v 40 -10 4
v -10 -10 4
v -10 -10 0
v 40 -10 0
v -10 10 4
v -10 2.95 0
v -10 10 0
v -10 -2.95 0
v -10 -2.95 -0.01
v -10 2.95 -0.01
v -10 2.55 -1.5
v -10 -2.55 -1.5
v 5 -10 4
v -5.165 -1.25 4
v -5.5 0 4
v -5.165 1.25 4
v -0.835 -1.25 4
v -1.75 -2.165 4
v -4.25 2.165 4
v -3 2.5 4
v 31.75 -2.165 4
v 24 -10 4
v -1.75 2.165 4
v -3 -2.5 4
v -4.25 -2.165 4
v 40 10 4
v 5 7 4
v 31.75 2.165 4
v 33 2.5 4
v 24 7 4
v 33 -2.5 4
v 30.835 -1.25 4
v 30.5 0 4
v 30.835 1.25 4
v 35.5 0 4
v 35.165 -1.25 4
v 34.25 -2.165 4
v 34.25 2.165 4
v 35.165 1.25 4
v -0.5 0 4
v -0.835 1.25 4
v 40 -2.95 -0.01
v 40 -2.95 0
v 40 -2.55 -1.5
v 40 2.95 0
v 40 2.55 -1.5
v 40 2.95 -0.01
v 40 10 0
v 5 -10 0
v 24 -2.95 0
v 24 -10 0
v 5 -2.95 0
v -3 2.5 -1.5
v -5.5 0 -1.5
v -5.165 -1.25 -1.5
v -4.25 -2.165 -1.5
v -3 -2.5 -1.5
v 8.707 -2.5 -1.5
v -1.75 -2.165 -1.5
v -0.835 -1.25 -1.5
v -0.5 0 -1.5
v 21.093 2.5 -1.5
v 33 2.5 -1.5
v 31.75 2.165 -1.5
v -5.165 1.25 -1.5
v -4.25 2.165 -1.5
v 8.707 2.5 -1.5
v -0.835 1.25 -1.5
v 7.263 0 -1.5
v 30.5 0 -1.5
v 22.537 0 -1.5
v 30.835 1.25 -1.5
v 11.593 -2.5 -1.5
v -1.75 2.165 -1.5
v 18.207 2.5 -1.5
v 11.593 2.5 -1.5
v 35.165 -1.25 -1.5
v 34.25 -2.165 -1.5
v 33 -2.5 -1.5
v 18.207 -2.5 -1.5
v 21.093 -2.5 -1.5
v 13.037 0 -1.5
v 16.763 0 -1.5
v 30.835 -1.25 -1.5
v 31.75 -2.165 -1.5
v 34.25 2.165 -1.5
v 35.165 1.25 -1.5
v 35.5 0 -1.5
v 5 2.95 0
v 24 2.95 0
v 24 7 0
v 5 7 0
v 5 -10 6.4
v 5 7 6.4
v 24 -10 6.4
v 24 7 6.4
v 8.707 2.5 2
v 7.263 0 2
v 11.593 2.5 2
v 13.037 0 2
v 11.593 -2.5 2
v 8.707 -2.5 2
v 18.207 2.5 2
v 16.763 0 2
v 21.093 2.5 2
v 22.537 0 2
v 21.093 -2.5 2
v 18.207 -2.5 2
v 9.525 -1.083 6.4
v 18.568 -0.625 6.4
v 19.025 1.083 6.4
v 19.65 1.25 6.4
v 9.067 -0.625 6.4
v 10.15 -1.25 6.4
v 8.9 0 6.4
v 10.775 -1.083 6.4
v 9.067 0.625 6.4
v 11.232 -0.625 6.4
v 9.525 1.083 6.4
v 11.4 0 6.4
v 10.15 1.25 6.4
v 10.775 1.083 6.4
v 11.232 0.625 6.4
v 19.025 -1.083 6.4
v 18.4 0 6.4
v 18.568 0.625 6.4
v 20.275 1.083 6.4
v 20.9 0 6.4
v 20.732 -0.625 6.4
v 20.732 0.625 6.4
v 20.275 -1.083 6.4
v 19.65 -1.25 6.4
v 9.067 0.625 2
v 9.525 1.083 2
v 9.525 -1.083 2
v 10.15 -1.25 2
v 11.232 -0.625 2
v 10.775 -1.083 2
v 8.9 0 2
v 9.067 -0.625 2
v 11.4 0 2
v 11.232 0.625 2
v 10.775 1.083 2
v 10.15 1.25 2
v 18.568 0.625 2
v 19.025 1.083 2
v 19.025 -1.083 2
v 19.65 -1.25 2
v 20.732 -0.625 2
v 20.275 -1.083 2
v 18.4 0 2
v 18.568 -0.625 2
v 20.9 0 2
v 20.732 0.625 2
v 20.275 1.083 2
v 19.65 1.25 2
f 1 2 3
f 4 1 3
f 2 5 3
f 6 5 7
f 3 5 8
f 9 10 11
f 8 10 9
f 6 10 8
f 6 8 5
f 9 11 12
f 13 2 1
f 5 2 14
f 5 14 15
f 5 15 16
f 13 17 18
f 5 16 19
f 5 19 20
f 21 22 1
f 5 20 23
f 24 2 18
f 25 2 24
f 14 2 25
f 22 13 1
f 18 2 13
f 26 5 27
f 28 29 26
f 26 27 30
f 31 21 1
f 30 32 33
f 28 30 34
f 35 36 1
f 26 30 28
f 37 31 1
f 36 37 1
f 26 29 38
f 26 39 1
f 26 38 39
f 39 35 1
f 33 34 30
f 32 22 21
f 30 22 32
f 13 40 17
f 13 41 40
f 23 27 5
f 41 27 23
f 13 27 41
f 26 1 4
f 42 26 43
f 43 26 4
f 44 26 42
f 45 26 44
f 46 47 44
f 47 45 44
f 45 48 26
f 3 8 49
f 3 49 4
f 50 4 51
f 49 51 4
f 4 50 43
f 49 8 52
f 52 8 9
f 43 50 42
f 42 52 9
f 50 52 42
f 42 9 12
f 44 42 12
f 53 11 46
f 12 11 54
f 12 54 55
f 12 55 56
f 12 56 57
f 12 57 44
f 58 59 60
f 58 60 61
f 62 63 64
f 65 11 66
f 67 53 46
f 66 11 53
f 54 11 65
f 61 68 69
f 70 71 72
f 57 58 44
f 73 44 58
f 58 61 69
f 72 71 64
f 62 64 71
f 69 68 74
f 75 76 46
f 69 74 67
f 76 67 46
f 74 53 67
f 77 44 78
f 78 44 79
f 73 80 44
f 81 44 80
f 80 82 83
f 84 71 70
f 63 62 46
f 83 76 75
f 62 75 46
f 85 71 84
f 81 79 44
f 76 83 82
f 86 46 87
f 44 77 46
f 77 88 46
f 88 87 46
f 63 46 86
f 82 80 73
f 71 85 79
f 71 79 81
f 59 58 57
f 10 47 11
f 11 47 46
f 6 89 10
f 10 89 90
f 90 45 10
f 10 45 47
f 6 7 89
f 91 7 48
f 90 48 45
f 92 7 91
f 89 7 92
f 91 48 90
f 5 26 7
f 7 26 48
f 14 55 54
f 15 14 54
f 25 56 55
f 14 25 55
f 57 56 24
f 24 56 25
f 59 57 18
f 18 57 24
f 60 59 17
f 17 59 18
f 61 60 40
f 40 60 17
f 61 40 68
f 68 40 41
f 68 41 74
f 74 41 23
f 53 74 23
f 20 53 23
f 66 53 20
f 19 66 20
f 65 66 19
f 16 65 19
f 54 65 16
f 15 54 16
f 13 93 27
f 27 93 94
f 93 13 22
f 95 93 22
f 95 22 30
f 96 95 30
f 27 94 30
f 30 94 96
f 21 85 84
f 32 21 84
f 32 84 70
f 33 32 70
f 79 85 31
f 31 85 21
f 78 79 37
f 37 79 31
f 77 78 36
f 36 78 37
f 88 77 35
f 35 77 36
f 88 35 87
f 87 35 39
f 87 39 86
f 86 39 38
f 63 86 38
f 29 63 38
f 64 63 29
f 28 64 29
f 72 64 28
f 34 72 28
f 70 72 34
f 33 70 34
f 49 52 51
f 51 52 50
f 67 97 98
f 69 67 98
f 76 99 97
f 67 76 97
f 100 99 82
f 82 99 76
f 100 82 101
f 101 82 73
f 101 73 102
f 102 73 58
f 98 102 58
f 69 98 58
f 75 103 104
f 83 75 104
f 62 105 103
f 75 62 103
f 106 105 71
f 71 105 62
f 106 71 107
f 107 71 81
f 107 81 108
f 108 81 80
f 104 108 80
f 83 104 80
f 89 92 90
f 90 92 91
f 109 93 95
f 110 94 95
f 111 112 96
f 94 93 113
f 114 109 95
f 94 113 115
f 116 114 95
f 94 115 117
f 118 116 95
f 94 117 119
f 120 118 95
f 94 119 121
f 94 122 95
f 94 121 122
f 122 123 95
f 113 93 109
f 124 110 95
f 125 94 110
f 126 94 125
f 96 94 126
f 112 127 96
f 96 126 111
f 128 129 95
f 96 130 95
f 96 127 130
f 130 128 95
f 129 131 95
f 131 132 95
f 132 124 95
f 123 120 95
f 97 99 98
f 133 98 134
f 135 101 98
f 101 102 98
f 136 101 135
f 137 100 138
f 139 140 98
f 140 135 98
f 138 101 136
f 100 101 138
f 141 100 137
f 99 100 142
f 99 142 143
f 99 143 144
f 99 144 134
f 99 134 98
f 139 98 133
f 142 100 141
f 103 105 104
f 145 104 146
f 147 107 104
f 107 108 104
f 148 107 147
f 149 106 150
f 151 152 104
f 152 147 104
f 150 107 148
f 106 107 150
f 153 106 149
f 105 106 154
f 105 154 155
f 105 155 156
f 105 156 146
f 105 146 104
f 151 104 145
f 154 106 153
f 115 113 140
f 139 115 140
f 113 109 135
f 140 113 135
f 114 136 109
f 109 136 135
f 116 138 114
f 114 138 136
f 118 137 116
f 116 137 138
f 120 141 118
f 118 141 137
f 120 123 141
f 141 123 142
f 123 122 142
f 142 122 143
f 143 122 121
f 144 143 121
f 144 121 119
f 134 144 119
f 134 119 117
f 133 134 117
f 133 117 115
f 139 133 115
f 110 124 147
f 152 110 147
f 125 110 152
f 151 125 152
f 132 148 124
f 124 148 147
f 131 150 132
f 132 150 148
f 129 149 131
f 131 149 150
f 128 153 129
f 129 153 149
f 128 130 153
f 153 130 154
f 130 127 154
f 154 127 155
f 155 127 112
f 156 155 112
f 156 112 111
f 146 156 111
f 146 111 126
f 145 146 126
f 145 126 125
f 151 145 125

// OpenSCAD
// file: ss_3gl13p.scad
//SS-3GL13P microswitch

//the real lever has a bump that isn't depicted here, but the tip of the lever here is where the tip of the bump is on the real switch when the operating point is reached

module ss_3gl13p(){
		difference(){
			union(){
				color("black")
				translate([0,-3.3,0]) cube([19.8,7.7+3.3,6.4]);
				color("silver")
				translate([5.15+15.8,10.7,0]) rotate([0,0,-170]) cube([20,1,6.4]);
			}
			translate([5.15,0,0])
			cylinder(r=2.3/2, h=100, center=true);
			translate([5.15+9.5,0,0])
			cylinder(r=2.3/2, h=100, center=true);
		}
	}

}
// main file
use<ss_3gl13p.scad>



module nut(w, h){
	translate([0,0,h/2])
	for (i=[1:3])
		rotate([0,0,60*i])
		cube([w, w/sqrt(3), h], center=true);

}



module	yendstop(color="blue", switch=0){
$fn=12;

switch_offset_side=5;
switch_offset_in=0;
switch_offset_height=15.8-15.8;

thickness=4;
extrusion_pad_width=50;
extrusion_pad_ridge_depth=1.5;
extrusion_pad_ridge_width=5.9;

strut_thickness=10;
strut_width=5.5;

switch_backing_width=19;
switch_backing_height=9;

switch_hole_dia=2.5;

	if(switch){
		translate([switch_offset_side,switch_offset_in,switch_offset_height+6.4])
		ss_3gl13p();}
	

	color(color)
	translate([-20/2, 0, 0])
	difference(){
		union(){
			rotate([90,0,90])
			difference(){
				union(){
					translate([-20/2, 0, 0])
					cube([20, thickness, extrusion_pad_width]);

					hull(){
						translate([-extrusion_pad_ridge_width/2, -.01, 0])
						cube([extrusion_pad_ridge_width, .02, extrusion_pad_width]);

						translate([-(extrusion_pad_ridge_width-.8)/2, -extrusion_pad_ridge_depth, 0])
						cube([extrusion_pad_ridge_width-.8, 2*extrusion_pad_ridge_depth, extrusion_pad_width]);
					}
				}

				for (x=[7, extrusion_pad_width-7])
				translate([0, 0, x])
				rotate([90,0,0])
					cylinder(r=5/2, h=thickness*3, center=true);
			}

			translate([20/2+switch_offset_side, -10, 0])
			cube([switch_backing_width, 20+switch_offset_in-3, 6.4+switch_offset_height]);
		}

		for (q=[switch_offset_side+5.15,switch_offset_side+5.15+9.5])
		translate([20/2+q, switch_offset_height+switch_offset_in, -extrusion_pad_ridge_depth-1])
		rotate([0,0,90]){
			cylinder(r=switch_hole_dia/2, h=strut_width*30, center=true);
			nut(w=5, h=extrusion_pad_ridge_depth+2+1);
		}
	}

}

yendstop(switch=0);
